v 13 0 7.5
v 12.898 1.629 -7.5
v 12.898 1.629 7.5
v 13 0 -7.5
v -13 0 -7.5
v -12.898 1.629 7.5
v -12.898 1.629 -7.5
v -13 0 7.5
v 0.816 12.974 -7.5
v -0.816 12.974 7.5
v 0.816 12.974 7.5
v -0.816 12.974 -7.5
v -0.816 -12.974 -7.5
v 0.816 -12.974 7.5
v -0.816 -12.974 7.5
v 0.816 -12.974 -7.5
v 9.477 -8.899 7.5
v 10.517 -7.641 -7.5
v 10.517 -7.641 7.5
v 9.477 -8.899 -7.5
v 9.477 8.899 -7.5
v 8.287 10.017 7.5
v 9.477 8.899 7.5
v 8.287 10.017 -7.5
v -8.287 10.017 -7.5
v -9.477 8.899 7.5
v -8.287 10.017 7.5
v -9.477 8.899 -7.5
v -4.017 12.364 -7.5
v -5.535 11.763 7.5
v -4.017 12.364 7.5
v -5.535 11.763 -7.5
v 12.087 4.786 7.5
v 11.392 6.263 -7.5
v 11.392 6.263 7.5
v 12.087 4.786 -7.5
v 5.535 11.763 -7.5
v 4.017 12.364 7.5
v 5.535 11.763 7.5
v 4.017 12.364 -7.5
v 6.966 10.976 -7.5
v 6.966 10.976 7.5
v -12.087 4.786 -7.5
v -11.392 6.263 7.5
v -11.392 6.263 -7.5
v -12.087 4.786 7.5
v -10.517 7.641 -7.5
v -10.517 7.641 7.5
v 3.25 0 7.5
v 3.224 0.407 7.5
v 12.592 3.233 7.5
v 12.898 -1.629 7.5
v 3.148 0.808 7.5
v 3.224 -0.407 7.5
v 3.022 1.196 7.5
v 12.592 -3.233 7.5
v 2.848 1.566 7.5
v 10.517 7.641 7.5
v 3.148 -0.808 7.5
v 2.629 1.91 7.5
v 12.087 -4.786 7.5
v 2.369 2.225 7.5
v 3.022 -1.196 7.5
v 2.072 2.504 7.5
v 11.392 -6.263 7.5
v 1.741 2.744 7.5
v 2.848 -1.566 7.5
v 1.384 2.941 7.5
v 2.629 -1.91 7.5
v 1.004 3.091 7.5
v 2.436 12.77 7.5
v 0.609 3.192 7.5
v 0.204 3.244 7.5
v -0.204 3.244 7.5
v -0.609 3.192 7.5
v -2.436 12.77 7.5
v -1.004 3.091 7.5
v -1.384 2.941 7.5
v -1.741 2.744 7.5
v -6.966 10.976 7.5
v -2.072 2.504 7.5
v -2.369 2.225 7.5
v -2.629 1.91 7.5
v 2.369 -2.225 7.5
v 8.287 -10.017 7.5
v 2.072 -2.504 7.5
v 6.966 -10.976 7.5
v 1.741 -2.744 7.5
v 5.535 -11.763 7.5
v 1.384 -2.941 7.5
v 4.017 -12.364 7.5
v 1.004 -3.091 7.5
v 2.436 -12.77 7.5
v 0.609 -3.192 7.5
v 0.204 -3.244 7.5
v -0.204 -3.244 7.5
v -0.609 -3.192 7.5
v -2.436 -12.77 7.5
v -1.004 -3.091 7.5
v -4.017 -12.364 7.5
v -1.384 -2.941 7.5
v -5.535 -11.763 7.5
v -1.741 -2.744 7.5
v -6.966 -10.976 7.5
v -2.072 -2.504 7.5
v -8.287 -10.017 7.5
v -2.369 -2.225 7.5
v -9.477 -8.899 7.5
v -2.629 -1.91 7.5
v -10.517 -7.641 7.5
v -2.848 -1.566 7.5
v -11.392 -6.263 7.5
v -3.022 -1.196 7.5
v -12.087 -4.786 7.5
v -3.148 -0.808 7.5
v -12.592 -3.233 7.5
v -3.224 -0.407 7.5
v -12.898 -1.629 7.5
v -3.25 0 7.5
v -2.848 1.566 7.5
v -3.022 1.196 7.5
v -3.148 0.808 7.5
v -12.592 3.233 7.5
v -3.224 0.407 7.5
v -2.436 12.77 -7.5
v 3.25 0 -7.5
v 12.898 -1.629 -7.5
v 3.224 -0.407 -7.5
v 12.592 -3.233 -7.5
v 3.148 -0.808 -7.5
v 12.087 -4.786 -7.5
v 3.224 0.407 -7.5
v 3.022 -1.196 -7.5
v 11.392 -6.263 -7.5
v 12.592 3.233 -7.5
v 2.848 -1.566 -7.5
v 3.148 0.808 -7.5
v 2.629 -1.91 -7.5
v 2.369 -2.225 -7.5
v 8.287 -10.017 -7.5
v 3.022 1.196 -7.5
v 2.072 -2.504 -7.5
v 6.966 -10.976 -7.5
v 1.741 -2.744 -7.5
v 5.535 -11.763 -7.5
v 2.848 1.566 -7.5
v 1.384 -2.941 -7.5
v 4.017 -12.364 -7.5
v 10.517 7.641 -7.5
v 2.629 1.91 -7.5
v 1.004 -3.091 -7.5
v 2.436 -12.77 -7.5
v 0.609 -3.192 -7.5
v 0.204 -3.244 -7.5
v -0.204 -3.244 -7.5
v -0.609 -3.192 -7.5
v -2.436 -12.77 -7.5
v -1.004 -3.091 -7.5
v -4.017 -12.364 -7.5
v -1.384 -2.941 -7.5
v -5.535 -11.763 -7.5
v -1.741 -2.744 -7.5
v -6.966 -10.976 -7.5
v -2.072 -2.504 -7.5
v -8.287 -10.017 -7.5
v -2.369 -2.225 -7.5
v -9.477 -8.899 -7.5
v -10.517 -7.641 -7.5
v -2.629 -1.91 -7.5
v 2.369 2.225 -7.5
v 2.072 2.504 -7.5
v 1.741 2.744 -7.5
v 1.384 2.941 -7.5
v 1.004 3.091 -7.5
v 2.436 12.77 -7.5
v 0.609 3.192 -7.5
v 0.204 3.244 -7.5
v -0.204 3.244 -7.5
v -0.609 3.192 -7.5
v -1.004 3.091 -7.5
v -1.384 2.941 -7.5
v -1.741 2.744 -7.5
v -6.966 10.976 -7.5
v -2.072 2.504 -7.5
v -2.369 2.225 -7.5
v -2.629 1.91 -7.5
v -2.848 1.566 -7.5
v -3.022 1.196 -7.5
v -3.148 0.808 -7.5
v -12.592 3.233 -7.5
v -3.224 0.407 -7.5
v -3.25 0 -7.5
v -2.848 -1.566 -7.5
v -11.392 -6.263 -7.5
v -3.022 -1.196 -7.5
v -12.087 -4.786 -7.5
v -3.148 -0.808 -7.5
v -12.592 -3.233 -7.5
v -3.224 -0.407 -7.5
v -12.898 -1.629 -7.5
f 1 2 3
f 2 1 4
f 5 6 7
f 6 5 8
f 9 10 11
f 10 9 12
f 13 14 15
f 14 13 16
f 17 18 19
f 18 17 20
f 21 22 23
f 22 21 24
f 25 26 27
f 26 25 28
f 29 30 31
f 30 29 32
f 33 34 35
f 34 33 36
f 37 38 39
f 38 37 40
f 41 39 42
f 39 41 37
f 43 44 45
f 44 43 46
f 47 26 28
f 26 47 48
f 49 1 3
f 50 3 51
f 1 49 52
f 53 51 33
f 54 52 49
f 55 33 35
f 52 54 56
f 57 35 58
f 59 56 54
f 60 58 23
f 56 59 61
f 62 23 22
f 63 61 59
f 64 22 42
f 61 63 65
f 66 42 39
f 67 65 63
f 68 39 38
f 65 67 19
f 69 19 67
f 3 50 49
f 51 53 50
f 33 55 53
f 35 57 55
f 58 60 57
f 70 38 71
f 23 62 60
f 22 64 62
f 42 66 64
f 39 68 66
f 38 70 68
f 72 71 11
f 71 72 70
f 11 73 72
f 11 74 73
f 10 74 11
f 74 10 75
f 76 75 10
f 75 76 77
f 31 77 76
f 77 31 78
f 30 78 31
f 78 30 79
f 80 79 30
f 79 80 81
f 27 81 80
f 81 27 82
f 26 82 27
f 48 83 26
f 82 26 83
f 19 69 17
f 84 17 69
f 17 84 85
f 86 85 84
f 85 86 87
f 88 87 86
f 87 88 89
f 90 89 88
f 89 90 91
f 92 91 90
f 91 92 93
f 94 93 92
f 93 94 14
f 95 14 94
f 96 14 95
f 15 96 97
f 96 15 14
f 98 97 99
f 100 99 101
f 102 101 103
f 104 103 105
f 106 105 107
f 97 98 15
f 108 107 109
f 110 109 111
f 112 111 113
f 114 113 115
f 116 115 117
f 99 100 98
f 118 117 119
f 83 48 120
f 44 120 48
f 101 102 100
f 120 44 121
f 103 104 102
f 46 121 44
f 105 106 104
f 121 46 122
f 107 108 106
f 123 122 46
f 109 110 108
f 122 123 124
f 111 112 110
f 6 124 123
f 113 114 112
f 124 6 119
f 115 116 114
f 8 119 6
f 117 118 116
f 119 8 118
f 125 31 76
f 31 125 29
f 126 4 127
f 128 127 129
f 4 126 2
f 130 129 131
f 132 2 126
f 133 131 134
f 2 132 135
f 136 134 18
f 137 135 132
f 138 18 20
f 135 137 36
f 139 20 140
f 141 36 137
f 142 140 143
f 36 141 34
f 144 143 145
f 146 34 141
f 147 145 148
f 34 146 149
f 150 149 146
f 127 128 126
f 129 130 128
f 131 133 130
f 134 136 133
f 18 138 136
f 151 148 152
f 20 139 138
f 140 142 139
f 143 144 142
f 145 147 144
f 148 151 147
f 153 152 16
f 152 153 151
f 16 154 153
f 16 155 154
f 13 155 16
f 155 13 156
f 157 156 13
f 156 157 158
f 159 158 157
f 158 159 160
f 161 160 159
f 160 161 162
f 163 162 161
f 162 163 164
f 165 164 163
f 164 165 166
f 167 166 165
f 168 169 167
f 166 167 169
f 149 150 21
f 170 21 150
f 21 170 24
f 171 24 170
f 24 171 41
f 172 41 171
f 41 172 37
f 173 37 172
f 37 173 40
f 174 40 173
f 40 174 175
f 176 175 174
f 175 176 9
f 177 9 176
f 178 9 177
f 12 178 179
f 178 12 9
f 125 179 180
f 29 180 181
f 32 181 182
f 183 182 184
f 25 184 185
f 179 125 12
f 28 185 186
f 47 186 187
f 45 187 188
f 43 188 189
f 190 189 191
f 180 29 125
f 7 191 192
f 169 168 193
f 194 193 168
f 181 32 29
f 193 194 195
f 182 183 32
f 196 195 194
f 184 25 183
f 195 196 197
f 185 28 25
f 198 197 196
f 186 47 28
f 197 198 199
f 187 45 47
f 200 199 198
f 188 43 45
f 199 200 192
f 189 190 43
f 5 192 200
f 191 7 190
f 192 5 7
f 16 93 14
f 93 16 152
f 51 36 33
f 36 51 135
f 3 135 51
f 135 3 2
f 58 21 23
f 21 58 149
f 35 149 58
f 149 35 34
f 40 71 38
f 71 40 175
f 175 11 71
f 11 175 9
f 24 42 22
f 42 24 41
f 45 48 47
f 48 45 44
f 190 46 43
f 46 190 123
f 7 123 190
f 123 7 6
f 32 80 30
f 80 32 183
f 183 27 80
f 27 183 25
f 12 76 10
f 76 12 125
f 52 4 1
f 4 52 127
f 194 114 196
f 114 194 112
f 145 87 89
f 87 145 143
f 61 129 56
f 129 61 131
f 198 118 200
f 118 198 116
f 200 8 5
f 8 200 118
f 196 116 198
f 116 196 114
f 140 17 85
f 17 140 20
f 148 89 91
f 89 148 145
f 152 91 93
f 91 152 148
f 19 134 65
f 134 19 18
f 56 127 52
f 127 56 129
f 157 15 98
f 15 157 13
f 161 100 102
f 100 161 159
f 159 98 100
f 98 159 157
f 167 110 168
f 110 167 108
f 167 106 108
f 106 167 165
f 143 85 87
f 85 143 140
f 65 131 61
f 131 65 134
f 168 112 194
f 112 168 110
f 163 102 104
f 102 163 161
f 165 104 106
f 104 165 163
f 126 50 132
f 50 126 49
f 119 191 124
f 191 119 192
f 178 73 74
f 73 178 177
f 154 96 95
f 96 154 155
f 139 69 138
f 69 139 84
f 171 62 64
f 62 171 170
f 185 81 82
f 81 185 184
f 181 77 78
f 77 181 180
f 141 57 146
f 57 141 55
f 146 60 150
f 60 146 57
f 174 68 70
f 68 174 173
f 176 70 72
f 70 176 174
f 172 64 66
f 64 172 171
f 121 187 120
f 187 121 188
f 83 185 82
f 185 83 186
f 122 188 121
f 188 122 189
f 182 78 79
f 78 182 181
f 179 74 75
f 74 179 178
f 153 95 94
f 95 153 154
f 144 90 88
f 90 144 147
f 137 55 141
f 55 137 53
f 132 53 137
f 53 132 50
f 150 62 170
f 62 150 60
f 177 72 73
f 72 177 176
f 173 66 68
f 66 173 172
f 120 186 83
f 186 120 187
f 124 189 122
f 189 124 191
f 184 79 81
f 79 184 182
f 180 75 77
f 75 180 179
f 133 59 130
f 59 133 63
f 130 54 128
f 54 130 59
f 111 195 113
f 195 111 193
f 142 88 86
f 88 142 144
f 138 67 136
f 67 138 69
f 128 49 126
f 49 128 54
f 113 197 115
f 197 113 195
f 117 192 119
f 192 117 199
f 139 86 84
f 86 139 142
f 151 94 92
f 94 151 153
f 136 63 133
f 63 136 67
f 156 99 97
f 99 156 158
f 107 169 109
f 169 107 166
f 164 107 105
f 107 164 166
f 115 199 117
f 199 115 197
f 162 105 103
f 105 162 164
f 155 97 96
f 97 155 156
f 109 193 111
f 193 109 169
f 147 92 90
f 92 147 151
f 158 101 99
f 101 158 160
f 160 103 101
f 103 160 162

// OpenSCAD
$fn = 50;


difference() {
	union() {
		translate(v = [0, 0, -7.5000000000]) {
			cylinder(h = 15, r = 13.0000000000);
		}
	}
	union() {
		translate(v = [0, 0, -100.0000000000]) {
			cylinder(h = 200, r = 3.2500000000);
		}
	}
}
